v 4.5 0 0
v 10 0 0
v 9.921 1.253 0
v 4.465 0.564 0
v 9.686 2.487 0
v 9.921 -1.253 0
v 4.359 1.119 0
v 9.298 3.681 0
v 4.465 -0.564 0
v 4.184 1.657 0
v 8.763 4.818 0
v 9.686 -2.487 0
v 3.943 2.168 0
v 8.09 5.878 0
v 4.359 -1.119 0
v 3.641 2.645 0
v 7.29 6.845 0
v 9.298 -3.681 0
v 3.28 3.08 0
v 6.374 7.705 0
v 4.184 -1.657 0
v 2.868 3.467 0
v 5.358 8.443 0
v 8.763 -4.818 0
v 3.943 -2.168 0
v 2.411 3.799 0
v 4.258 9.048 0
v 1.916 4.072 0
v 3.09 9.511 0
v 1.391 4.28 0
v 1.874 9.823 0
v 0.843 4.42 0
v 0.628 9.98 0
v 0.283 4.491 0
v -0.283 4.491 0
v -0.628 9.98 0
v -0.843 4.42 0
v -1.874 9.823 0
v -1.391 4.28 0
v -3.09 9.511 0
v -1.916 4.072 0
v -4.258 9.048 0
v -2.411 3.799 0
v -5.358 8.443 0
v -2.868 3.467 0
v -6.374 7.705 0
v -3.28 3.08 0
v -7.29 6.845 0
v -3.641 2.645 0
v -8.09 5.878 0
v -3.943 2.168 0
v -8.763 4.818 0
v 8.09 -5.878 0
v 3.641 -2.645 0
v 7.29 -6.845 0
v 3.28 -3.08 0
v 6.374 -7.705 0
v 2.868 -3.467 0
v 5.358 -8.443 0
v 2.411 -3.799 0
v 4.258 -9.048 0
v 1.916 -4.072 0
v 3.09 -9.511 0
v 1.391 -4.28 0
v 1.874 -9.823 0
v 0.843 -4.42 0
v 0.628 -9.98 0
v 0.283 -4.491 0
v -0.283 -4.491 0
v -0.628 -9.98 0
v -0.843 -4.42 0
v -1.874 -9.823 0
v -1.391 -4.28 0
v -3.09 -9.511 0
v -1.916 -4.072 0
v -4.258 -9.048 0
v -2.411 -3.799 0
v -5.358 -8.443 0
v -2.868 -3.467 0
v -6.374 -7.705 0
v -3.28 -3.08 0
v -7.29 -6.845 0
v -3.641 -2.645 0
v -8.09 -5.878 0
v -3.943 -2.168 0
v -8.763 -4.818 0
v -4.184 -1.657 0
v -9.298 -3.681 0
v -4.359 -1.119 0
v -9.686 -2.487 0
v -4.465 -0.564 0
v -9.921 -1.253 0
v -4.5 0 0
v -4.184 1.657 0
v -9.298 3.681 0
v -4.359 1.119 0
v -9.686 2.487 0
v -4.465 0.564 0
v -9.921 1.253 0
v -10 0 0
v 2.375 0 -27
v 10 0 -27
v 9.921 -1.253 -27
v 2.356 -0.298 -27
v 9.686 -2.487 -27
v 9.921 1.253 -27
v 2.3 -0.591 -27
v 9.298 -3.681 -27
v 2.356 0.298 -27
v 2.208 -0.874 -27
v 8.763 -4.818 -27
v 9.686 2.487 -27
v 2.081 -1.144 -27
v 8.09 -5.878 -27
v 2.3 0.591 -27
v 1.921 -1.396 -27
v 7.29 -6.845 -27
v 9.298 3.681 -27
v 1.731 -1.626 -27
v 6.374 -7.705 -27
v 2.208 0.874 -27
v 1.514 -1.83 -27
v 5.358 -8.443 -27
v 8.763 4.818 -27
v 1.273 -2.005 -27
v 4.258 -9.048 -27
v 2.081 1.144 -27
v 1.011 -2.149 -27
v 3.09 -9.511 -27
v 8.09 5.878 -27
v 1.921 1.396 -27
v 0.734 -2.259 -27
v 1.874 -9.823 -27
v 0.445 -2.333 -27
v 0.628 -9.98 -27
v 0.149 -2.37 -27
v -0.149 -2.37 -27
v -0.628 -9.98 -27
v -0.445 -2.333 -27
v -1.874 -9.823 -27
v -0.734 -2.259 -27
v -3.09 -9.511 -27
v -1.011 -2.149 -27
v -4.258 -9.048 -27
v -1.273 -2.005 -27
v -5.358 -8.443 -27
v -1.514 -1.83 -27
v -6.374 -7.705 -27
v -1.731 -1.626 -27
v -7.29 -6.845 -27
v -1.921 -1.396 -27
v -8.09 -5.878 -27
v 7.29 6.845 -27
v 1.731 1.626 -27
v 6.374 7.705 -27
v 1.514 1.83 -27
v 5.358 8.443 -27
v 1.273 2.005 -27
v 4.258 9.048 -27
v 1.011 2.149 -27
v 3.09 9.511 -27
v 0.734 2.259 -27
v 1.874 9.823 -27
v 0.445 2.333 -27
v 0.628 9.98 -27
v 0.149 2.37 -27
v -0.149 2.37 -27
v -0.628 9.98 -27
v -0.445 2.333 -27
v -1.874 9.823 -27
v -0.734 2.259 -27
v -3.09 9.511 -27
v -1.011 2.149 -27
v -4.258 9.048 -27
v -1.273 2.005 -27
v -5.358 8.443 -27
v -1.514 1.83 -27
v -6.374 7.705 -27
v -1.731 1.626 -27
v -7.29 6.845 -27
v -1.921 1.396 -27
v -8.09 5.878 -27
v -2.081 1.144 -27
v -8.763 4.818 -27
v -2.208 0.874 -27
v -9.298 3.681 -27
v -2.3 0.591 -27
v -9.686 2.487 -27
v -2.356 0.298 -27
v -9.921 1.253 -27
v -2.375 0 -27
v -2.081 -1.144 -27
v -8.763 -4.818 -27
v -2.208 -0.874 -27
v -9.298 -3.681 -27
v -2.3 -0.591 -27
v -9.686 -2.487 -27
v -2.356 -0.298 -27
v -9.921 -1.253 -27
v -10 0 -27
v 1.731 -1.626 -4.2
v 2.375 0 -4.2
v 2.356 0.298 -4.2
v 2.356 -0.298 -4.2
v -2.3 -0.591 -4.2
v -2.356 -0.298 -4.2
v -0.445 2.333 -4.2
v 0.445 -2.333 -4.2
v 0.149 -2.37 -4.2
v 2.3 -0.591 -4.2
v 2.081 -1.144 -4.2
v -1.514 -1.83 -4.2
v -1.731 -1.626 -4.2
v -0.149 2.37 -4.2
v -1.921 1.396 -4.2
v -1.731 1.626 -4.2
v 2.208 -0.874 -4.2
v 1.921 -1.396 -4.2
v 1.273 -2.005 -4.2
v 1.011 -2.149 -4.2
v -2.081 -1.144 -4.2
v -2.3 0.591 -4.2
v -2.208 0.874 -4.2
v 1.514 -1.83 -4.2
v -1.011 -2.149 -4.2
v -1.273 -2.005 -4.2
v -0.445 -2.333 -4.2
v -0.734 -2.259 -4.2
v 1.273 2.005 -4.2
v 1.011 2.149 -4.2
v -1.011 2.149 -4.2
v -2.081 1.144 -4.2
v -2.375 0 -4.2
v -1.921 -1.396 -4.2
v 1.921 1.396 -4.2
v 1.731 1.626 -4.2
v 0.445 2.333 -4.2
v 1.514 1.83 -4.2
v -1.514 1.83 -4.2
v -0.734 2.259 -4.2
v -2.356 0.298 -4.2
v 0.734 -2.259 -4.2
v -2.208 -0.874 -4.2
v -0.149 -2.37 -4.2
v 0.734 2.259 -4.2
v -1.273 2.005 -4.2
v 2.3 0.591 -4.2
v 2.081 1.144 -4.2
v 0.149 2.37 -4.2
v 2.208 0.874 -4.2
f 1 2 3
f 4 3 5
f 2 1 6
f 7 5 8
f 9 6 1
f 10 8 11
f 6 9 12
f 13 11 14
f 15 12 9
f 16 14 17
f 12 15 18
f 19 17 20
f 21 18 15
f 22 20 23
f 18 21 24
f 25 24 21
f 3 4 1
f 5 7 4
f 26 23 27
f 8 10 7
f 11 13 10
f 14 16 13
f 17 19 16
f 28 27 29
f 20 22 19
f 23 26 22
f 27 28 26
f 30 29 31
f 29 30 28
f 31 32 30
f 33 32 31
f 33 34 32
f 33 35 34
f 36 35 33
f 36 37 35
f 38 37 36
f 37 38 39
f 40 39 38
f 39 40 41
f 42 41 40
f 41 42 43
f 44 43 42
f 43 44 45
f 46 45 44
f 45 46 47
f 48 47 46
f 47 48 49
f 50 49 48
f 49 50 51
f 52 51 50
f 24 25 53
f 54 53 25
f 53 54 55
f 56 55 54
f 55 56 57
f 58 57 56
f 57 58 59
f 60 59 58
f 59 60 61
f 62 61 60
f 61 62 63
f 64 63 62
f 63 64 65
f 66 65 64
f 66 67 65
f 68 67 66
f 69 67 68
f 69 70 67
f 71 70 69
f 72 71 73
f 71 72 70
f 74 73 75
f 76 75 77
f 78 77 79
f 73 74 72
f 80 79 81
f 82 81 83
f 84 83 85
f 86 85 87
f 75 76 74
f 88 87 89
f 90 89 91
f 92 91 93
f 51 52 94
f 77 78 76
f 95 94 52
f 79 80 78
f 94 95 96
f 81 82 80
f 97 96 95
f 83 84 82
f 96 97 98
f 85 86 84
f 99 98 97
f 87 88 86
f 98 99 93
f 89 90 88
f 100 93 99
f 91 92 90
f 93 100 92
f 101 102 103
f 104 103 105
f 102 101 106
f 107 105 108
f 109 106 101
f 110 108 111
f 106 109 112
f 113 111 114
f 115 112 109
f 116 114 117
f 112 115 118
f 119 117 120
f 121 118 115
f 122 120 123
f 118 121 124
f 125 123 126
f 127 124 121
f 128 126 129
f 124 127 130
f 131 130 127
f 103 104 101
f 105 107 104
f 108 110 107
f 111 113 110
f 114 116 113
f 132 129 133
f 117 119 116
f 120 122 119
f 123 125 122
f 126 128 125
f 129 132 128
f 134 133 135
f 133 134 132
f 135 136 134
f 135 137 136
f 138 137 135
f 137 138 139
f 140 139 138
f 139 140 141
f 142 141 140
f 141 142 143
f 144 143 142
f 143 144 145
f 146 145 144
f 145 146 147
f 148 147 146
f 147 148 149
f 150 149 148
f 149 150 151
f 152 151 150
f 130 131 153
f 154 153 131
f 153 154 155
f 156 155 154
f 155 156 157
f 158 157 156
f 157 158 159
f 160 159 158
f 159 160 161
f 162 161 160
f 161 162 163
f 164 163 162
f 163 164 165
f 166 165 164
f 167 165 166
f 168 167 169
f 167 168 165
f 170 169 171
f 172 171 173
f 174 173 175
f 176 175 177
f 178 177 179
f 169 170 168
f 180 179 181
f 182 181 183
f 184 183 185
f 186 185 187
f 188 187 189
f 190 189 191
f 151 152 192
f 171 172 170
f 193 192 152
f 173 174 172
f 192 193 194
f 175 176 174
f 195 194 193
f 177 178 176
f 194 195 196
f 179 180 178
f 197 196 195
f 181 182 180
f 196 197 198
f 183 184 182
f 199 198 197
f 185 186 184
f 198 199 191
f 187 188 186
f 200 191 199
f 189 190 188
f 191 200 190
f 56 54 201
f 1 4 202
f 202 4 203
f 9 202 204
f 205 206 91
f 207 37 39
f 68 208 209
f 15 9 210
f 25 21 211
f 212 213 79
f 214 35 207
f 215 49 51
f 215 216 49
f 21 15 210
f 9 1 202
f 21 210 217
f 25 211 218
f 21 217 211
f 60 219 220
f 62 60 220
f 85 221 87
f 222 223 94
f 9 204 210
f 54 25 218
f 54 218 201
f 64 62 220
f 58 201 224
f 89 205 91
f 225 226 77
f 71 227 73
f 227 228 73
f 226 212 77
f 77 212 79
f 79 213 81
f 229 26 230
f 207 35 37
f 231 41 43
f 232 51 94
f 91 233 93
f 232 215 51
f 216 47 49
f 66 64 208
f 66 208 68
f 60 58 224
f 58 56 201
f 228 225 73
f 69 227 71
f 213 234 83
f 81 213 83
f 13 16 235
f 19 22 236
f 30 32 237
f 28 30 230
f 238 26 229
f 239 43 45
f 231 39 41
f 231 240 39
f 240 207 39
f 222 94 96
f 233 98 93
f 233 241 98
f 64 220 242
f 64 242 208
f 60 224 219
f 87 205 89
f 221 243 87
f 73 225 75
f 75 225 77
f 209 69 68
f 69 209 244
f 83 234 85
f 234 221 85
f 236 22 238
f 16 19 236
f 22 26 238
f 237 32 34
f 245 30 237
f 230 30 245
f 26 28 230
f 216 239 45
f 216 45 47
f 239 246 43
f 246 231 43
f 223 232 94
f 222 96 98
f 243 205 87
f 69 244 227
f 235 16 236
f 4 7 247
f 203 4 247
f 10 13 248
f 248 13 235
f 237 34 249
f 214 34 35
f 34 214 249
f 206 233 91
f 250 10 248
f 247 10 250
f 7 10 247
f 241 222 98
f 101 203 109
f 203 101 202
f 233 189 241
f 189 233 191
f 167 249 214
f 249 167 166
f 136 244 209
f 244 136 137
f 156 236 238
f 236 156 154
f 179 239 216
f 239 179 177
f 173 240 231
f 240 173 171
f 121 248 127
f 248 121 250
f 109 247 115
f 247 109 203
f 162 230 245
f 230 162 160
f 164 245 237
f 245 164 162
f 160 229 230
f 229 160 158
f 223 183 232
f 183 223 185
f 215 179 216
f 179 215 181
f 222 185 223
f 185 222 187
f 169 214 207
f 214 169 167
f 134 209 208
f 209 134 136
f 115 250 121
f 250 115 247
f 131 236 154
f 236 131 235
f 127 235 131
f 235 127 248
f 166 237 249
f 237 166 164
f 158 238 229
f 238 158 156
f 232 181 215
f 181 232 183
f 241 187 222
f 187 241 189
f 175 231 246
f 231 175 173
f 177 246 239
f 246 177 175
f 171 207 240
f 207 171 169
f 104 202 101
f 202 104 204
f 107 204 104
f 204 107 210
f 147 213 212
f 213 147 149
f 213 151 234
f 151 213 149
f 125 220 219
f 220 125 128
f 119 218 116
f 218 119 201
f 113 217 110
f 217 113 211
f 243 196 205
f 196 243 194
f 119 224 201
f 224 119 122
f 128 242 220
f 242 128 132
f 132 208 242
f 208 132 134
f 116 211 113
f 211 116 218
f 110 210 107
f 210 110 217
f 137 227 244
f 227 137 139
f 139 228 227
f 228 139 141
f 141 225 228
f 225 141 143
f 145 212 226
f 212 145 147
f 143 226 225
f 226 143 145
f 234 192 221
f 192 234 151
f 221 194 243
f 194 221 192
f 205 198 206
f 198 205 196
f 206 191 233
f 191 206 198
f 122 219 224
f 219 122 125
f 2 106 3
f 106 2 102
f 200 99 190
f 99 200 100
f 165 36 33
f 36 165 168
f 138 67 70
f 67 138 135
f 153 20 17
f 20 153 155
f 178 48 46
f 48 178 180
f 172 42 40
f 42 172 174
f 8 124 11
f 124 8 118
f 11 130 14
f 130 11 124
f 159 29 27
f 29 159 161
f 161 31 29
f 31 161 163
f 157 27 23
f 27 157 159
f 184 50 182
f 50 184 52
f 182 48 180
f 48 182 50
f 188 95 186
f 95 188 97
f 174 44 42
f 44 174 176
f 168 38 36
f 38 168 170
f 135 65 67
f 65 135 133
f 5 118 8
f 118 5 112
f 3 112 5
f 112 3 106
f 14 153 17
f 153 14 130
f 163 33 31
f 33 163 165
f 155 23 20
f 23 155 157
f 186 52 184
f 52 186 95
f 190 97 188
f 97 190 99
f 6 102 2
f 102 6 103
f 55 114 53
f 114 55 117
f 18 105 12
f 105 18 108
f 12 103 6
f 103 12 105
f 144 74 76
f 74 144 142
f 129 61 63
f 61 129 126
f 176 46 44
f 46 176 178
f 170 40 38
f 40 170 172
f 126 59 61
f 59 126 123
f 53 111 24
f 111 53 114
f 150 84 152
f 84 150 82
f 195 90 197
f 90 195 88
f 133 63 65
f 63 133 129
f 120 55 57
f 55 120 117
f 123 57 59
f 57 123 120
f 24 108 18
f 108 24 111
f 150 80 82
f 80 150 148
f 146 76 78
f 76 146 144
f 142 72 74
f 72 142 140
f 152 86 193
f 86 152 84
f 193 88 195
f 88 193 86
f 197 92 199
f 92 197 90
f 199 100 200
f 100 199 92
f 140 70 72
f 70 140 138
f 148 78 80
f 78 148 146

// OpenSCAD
$fn = 50;


difference() {
	union() {
		translate(v = [0, 0, -27.0000000000]) {
			cylinder(h = 27, r = 10.0000000000);
		}
		cylinder(h = 0, r = 13.0000000000);
	}
	union() {
		translate(v = [0, 0, 0]) {
			rotate(a = [0, 0, 0]) {
				difference() {
					union() {
						#translate(v = [0, 0, -27.0000000000]) {
							cylinder(h = 27, r = 2.2500000000);
						}
						#translate(v = [0, 0, -4.2000000000]) {
							cylinder(h = 4.2000000000, r1 = 2.3750000000, r2 = 4.5000000000);
						}
						#translate(v = [0, 0, -27.0000000000]) {
							cylinder(h = 27, r = 2.3750000000);
						}
						#translate(v = [0, 0, -27.0000000000]) {
							cylinder(h = 27, r = 2.2500000000);
						}
					}
					union();
				}
			}
		}
	}
}
